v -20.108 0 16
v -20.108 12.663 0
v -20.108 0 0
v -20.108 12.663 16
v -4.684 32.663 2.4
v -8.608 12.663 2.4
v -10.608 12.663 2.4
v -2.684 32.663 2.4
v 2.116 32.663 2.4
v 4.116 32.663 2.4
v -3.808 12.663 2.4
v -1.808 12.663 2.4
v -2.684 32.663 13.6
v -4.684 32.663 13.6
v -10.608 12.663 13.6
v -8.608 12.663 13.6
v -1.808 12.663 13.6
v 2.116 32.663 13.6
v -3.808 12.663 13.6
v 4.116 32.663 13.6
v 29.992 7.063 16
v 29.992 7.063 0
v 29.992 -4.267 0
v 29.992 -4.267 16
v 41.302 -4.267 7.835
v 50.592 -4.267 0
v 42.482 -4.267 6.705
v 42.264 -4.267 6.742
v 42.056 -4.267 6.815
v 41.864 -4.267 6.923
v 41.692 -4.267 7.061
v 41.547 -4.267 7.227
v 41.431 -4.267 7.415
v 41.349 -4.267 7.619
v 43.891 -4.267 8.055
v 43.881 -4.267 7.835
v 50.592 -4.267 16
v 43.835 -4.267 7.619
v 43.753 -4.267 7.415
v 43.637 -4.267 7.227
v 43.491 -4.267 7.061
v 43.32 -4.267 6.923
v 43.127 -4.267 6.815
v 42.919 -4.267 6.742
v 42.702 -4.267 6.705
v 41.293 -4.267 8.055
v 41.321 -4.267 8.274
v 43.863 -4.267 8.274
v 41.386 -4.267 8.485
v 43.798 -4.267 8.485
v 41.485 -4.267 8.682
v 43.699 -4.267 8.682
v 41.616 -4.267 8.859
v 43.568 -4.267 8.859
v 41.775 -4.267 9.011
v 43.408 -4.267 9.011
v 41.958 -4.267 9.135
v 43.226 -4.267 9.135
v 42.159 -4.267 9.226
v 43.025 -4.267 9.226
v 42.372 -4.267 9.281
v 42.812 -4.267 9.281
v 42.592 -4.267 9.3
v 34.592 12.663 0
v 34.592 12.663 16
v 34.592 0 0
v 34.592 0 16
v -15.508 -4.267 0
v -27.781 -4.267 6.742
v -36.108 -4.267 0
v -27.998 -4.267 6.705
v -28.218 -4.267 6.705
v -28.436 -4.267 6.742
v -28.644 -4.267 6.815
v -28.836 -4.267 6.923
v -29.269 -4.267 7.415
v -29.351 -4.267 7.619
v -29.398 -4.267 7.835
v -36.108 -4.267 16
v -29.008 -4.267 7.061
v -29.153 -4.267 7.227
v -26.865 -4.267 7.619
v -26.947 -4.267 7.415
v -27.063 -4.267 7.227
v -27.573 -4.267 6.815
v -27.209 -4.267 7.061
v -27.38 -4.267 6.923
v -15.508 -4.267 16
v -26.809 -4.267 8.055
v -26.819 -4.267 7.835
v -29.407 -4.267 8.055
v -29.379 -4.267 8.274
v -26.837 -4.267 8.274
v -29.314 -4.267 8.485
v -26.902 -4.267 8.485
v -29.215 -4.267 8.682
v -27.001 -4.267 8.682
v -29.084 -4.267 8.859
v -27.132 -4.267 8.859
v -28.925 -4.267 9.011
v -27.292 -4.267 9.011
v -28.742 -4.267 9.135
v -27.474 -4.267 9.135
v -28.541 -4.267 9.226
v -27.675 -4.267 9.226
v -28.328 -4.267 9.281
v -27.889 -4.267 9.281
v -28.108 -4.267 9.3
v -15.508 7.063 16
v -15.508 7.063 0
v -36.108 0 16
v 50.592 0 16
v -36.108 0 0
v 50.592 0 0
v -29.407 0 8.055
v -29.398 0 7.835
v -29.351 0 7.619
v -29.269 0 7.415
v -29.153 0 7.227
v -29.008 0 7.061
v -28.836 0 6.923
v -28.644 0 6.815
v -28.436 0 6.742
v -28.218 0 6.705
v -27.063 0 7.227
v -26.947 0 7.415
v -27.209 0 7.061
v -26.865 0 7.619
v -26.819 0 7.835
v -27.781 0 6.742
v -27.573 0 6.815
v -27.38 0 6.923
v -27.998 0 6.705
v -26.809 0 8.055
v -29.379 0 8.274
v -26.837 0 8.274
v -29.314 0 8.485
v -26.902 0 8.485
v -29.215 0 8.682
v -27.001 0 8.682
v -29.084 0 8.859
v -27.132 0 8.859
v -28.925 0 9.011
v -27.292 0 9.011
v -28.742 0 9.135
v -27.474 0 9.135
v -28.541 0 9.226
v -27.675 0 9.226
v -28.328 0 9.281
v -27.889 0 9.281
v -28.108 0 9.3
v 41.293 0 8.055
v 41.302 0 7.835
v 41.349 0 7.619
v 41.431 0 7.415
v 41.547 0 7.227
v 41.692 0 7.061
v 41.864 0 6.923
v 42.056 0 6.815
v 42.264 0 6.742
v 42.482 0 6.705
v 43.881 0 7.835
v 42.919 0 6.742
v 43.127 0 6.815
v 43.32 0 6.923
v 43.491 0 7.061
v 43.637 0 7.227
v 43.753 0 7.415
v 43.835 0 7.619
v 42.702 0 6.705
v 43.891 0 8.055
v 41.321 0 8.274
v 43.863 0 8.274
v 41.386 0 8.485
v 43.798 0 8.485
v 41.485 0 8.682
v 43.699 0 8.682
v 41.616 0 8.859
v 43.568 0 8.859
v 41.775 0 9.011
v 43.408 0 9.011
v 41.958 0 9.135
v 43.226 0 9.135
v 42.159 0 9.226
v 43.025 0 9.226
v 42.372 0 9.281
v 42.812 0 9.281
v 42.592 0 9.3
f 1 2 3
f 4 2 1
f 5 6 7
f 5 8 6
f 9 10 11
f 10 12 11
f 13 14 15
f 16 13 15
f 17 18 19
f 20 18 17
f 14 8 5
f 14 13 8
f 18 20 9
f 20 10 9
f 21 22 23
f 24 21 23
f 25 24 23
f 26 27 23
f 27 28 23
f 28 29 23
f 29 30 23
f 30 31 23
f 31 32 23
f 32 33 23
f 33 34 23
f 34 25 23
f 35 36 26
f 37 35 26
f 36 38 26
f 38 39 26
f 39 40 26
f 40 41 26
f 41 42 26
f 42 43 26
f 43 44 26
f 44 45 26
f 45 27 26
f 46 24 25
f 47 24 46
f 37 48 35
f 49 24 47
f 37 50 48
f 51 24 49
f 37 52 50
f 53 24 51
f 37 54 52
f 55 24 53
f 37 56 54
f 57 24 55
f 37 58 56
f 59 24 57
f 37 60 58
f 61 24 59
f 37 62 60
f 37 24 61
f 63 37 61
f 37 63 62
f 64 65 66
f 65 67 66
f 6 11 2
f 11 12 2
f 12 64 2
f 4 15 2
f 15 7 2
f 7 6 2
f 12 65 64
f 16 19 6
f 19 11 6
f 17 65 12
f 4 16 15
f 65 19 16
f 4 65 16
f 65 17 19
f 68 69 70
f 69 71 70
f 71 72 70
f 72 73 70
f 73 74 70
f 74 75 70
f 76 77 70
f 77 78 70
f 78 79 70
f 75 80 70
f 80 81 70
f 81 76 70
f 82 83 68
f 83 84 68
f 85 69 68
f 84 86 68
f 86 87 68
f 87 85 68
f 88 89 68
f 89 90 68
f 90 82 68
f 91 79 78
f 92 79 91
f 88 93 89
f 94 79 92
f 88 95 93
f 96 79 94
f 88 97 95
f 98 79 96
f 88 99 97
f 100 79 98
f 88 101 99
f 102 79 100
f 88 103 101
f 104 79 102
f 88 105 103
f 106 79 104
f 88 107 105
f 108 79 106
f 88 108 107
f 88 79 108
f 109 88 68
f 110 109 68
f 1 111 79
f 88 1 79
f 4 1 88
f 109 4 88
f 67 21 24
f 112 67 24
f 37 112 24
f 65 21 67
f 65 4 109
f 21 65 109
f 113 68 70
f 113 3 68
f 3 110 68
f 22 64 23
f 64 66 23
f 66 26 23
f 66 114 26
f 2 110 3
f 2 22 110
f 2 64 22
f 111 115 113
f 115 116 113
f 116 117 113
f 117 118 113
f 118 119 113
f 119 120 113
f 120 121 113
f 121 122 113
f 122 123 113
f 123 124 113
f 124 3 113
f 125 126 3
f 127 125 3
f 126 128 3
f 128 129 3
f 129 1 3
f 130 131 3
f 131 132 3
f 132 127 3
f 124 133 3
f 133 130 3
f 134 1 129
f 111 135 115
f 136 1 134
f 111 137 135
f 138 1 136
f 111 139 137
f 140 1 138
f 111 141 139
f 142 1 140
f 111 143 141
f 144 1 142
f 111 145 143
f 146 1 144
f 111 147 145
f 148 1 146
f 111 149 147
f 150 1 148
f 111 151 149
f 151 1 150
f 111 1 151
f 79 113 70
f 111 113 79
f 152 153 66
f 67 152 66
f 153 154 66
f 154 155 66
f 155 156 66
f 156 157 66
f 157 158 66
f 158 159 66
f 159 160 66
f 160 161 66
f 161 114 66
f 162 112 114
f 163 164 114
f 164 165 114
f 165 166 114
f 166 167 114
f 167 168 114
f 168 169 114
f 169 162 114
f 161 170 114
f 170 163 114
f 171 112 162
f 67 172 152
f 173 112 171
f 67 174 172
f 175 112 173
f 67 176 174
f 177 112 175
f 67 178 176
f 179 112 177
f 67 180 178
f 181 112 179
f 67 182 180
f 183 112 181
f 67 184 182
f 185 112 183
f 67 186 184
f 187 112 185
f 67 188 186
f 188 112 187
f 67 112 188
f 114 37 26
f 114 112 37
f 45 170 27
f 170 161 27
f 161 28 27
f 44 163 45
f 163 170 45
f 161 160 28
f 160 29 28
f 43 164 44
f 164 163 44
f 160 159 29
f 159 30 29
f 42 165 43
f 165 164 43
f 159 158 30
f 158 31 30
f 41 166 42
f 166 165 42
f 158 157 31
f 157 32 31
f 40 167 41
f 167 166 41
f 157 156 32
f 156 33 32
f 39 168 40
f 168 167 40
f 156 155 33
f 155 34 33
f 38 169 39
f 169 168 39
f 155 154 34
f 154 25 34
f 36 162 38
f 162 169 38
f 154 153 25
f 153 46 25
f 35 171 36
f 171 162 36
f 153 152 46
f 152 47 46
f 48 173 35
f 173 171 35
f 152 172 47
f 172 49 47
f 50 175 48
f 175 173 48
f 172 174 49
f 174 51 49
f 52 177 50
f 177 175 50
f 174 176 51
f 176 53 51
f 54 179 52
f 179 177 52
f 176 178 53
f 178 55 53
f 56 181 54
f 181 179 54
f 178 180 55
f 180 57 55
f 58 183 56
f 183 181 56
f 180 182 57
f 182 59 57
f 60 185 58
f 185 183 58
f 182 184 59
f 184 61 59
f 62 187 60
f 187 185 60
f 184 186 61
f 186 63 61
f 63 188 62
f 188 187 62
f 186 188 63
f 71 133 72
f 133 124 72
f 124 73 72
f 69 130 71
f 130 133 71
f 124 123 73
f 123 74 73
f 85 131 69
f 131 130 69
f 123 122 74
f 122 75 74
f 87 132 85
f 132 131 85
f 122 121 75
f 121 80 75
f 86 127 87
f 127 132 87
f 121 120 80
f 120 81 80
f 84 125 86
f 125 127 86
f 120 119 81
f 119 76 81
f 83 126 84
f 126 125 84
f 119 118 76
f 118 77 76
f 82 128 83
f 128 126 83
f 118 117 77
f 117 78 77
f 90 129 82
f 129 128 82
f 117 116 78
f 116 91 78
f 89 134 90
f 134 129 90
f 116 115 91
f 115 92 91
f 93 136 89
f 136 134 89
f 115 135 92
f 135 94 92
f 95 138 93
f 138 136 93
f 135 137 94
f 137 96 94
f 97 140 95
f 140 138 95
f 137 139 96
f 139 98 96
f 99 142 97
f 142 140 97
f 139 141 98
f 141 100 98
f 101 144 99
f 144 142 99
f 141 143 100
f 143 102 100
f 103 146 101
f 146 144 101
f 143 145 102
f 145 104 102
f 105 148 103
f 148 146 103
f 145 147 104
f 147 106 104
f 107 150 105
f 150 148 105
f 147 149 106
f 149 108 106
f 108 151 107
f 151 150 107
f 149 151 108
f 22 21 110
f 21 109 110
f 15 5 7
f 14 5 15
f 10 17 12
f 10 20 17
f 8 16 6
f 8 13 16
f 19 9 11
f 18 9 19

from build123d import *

# Parameters (mm, degrees)
EXTRUDE_1_DEPTH     = 16
SKETCH_3_W          = 16
SKETCH_3_H          = 4.26667426
EXTRUDE_3_DEPTH     = 16
SKETCH_23_W         = 16
SKETCH_23_H         = 4.26667426
EXTRUDE_4_DEPTH     = 16
F_2_0MM_2_D         = 2.6
F_2_0MM_3_D         = 2.6
SKETCH_33_W         = 45.5
SKETCH_33_H         = 16
EXTRUDE_5_DEPTH     = 1
SKETCH_34_W         = 28.538779463
SKETCH_34_H         = 11.2
EXTRUDE_6_DEPTH     = 20
CUT_EXTRUDE_1_DEPTH = 20


with BuildPart() as part:
    # 草图2 → 凸台-拉伸1 (new body)
    with BuildSketch(Plane.XY):
        Polygon((34.591799544, 12.66332574), (-20.108200456, 12.66332574), (-20.108200456, -4.26667426), (-15.508200456, -4.26667426), (-15.508200456, 8.06332574), (29.991799544, 8.06332574), (29.991799544, -4.26667426), (34.591799544, -4.26667426), align=None)
    extrude(amount=EXTRUDE_1_DEPTH)

    # 草图3 → 凸台-拉伸3 (add)
    with BuildSketch(Plane.ZY.offset(20.108200456)):
        with Locations((8, -2.13333713)):
            Rectangle(SKETCH_3_W, SKETCH_3_H)
    extrude(amount=EXTRUDE_3_DEPTH)

    # 草图23 → 凸台-拉伸4 (add)
    with BuildSketch(Plane(origin=(34.591799544, 0, 0), x_dir=(0, 0, -1), z_dir=(1, 0, 0))):
        with Locations((-8, -2.13333713)):
            Rectangle(SKETCH_23_W, SKETCH_23_H)
    extrude(amount=EXTRUDE_4_DEPTH)

    # Ø2.0mm 暗销孔2 (through all)
    with Locations(Plane(origin=(0, 0, 0), x_dir=(1, 0, 0), z_dir=(0, 1, 0))):
        with Locations((42.591799544, -8)):
            Hole(F_2_0MM_2_D / 2)

    # Ø2.0mm 暗销孔3 (through all)
    with Locations(Plane(origin=(0, 0, 0), x_dir=(1, 0, 0), z_dir=(0, 1, 0))):
        with Locations((-28.108200456, -8)):
            Hole(F_2_0MM_3_D / 2)

    # 草图33 → 凸台-拉伸5 (add)
    with BuildSketch(Plane.XZ.offset(-8.06332574)):
        with Locations((7.241799544, 8)):
            Rectangle(SKETCH_33_W, SKETCH_33_H)
    extrude(amount=EXTRUDE_5_DEPTH)

    # 草图34 → 凸台-拉伸6 (add)
    with BuildSketch(Plane(origin=(0, 12.66332574, 0), x_dir=(1, 0, 0), z_dir=(0, 1, 0))):
        with Locations((-5.838810725, -8)):
            Rectangle(SKETCH_34_W, SKETCH_34_H)
    extrude(amount=EXTRUDE_6_DEPTH)

    # 草图35 → 切除-拉伸1 (cut)
    with BuildSketch(Plane.XY.offset(16)):
        Polygon((-3.808200456, 12.66332574), (2.116069444, 32.66332574), (-2.683930556, 32.66332574), (-8.608200456, 12.66332574), align=None)
        Polygon((-1.808200456, 12.66332574), (8.430579007, 12.66332574), (8.430579007, 32.66332574), (4.116069444, 32.66332574), align=None)
        Polygon((-20.108200456, 12.66332574), (-10.608200456, 12.66332574), (-4.683930556, 32.66332574), (-20.108200456, 32.66332574), align=None)
    extrude(amount=-CUT_EXTRUDE_1_DEPTH, mode=Mode.SUBTRACT)


solid = part.part
